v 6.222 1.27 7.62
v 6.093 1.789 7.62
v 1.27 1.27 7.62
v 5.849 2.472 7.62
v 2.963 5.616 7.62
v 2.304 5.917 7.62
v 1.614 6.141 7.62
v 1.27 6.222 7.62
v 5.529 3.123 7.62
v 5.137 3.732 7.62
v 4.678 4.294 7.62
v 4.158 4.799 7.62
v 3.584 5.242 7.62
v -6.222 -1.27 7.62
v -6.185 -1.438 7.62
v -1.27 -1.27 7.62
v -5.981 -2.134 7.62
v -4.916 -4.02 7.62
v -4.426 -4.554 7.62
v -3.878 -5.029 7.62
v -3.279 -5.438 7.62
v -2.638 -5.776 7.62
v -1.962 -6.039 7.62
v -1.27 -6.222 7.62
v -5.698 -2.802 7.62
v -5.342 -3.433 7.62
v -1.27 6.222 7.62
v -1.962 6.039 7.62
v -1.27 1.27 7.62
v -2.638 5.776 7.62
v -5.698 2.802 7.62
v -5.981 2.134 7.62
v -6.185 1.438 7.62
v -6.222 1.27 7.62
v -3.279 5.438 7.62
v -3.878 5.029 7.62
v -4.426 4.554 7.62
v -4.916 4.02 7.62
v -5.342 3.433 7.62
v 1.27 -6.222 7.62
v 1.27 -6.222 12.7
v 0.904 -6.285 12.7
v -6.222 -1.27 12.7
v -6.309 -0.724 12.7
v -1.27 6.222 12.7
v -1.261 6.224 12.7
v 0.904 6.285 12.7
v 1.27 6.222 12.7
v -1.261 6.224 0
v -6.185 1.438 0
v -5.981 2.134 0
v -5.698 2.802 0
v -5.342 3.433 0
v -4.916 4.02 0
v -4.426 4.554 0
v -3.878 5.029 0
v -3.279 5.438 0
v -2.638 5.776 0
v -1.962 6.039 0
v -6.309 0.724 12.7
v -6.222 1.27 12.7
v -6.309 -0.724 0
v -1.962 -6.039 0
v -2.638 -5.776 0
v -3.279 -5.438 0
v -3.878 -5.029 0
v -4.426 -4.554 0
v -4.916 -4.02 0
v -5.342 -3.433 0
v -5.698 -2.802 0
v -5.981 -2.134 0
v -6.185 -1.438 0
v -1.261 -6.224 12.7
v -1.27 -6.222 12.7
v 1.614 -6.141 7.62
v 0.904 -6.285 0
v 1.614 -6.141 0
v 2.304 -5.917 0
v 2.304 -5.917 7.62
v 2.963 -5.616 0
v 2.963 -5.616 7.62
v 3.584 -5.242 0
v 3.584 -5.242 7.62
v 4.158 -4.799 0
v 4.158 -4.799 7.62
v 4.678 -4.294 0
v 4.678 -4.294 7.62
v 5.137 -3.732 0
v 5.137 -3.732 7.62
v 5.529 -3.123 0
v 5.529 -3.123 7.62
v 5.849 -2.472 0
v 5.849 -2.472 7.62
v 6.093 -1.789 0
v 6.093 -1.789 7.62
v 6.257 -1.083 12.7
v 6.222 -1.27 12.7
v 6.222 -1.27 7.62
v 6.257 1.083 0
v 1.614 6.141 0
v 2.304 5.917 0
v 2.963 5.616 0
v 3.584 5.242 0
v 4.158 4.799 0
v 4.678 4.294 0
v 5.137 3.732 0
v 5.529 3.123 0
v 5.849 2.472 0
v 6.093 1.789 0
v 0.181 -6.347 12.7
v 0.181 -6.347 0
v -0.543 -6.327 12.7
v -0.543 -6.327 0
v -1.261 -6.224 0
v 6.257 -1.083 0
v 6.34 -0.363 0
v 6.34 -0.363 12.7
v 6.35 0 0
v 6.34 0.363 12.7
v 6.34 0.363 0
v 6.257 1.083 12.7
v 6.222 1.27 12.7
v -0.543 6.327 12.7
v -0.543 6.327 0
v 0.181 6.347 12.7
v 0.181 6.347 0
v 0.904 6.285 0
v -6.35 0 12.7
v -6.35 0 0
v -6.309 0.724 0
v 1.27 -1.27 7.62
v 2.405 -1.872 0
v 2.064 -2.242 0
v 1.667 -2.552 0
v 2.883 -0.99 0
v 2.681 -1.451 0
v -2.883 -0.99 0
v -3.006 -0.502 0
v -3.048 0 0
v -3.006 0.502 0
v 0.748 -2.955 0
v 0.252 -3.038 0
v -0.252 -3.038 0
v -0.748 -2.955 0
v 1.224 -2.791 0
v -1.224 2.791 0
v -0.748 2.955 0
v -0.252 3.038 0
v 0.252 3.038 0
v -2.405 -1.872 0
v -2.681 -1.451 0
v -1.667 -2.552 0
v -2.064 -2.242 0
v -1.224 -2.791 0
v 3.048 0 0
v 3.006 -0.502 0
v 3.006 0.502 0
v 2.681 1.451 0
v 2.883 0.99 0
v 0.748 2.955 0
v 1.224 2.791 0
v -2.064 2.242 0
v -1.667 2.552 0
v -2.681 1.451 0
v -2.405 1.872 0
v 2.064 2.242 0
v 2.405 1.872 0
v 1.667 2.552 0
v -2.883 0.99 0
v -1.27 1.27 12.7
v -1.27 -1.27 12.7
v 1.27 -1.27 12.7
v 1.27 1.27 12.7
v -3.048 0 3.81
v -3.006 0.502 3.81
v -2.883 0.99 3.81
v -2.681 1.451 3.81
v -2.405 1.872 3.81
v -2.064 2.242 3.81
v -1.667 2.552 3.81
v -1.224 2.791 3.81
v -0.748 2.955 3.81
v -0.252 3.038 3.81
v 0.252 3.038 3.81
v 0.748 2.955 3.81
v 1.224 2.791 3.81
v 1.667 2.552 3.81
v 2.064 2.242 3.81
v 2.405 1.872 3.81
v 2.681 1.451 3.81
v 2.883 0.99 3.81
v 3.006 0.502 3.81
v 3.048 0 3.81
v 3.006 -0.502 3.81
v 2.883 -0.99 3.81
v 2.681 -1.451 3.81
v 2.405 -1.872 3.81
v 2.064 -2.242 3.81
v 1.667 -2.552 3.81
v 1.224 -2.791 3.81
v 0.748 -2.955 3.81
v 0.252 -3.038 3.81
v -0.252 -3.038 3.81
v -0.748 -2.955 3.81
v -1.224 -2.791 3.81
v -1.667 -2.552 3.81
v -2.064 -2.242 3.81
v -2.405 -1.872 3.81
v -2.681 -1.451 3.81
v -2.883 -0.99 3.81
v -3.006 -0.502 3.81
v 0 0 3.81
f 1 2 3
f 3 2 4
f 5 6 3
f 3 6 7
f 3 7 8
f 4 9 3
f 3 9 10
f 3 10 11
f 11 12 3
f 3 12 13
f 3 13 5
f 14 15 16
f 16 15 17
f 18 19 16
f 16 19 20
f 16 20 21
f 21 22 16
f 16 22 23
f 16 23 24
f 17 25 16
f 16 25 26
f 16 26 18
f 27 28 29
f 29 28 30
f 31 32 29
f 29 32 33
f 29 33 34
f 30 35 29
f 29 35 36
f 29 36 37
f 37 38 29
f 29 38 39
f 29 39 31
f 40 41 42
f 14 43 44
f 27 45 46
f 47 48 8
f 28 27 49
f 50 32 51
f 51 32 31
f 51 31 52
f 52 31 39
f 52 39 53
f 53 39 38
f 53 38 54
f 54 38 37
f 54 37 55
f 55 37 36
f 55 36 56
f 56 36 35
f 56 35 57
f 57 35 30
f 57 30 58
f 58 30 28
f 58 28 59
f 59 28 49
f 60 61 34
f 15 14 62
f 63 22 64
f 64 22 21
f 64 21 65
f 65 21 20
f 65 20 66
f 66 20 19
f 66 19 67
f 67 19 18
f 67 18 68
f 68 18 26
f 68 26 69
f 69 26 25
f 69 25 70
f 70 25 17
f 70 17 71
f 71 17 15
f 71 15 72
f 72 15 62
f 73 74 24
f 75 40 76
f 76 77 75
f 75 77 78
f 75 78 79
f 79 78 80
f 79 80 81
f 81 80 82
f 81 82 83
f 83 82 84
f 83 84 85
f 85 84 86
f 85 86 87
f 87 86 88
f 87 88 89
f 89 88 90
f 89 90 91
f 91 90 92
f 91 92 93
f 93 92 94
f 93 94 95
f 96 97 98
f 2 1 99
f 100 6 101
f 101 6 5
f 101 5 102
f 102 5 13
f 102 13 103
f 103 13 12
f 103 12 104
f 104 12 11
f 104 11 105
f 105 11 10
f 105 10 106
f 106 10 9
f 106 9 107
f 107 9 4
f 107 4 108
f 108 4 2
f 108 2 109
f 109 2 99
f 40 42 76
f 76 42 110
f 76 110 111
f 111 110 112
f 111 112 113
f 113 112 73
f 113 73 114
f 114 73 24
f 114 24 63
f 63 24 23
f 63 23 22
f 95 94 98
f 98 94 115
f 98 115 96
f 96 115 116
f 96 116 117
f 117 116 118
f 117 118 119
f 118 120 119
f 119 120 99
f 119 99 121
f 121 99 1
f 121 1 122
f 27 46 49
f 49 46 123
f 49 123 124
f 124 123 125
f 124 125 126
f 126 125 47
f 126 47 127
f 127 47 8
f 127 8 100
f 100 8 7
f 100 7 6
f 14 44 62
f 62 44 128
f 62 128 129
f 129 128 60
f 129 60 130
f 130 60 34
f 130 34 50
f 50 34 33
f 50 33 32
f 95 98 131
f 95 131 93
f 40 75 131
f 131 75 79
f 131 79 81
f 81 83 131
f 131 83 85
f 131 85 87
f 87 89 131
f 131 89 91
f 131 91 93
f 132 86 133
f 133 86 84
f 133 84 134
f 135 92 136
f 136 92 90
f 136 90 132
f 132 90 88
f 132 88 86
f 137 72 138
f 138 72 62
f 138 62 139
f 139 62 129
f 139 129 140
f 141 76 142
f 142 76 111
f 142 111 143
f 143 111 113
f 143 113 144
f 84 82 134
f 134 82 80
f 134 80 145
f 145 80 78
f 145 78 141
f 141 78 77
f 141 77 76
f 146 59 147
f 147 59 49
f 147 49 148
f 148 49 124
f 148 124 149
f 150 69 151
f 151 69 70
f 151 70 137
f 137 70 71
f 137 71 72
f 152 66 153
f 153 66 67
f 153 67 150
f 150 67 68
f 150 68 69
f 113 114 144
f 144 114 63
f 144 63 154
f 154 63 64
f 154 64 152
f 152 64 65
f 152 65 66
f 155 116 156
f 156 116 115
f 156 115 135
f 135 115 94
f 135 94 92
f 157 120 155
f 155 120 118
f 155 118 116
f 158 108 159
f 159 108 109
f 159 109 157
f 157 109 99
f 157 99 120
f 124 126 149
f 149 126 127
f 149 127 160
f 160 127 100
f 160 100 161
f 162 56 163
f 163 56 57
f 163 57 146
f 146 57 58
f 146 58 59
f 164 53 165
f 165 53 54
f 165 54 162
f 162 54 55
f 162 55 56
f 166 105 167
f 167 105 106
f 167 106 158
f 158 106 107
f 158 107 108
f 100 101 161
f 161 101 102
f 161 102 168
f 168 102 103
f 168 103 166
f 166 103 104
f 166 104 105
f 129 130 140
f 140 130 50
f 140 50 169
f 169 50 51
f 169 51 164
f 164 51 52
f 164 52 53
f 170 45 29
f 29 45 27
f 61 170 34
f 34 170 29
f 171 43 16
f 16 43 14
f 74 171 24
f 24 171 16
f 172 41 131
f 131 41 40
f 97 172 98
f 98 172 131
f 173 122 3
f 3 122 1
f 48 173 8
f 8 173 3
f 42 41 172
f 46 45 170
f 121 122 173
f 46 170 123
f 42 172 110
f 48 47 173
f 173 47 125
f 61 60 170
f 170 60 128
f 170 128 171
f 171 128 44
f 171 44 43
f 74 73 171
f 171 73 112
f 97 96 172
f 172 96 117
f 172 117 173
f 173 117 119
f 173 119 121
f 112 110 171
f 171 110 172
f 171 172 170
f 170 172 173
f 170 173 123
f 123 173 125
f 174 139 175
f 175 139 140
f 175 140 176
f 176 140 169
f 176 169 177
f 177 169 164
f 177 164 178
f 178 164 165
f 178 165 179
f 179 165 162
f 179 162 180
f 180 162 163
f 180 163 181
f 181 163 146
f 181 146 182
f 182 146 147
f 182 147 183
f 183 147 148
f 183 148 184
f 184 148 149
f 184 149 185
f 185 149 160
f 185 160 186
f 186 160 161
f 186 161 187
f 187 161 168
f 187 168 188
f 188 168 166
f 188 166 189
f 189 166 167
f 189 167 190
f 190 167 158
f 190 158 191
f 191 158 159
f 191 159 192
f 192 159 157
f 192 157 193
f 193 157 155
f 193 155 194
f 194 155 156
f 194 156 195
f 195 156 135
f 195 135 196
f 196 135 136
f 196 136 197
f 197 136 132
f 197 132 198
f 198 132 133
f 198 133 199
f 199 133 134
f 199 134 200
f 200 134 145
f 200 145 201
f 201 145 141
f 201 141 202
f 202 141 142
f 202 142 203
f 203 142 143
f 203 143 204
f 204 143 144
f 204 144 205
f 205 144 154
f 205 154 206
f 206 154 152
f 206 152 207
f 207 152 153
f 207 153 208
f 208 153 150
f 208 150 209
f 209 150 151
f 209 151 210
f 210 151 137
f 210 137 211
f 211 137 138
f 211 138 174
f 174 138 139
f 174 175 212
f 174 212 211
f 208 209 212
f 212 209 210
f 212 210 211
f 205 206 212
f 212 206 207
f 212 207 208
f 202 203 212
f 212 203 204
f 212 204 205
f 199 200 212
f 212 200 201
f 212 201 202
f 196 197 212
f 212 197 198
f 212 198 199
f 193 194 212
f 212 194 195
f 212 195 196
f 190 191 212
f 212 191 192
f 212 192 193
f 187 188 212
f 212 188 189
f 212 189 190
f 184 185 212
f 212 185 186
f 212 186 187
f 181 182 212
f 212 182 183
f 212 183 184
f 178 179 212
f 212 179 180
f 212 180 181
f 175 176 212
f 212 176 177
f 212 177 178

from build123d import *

# Parameters (mm, degrees)
SKETCH1_R           = 6.35
BOSS_EXTRUDE1_DEPTH = 7.62
SKETCH2_W           = 2.54
SKETCH2_H           = 2.54
BOSS_EXTRUDE2_DEPTH = 5.08
SKETCH3_R           = 3.048
CUT_EXTRUDE1_DEPTH  = 3.81


with BuildPart() as part:
    # Sketch1 → Boss-Extrude1 (new body)
    with BuildSketch(Plane.XY):
        with Locations(Location((0, 0, 0), (0, 0, 180))):
            Circle(SKETCH1_R)
    extrude(amount=BOSS_EXTRUDE1_DEPTH)

    # Sketch2 → Boss-Extrude2 (add)
    with BuildSketch(Plane.XY.offset(7.62)):
        with BuildLine():
            Line((-1.27, 1.27), (1.27, 1.27))
            Line((1.27, 1.27), (1.27, 6.221703947))
            ThreePointArc((1.27, 6.221703947), (0, 6.35), (-1.27, 6.221703947))
            Line((-1.27, 6.221703947), (-1.27, 1.27))
        make_face()
        with BuildLine():
            Line((-6.221703947, -1.27), (-1.27, -1.27))
            Line((-1.27, -1.27), (-1.27, 1.27))
            Line((-1.27, 1.27), (-6.221703947, 1.27))
            ThreePointArc((-6.221703947, 1.27), (-6.35, 0), (-6.221703947, -1.27))
        make_face()
        Rectangle(SKETCH2_W, SKETCH2_H)
        with BuildLine():
            Line((1.27, 1.27), (1.27, -1.27))
            Line((1.27, -1.27), (6.221703947, -1.27))
            ThreePointArc((6.221703947, -1.27), (6.317844572, -0.638231909), (6.35, 0))
            ThreePointArc((6.35, 0), (6.317844572, 0.638231909), (6.221703947, 1.27))
            Line((6.221703947, 1.27), (1.27, 1.27))
        make_face()
        with BuildLine():
            ThreePointArc((-1.27, -6.221703947), (0, -6.35), (1.27, -6.221703947))
            Line((1.27, -6.221703947), (1.27, -1.27))
            Line((1.27, -1.27), (-1.27, -1.27))
            Line((-1.27, -1.27), (-1.27, -6.221703947))
        make_face()
    extrude(amount=BOSS_EXTRUDE2_DEPTH)

    # Sketch3 → Cut-Extrude1 (cut)
    with BuildSketch(Plane(origin=(0, 0, 0), x_dir=(-1, 0, 0), z_dir=(0, 0, -1))):
        Circle(SKETCH3_R)
    extrude(amount=-CUT_EXTRUDE1_DEPTH, mode=Mode.SUBTRACT)


solid = part.part
